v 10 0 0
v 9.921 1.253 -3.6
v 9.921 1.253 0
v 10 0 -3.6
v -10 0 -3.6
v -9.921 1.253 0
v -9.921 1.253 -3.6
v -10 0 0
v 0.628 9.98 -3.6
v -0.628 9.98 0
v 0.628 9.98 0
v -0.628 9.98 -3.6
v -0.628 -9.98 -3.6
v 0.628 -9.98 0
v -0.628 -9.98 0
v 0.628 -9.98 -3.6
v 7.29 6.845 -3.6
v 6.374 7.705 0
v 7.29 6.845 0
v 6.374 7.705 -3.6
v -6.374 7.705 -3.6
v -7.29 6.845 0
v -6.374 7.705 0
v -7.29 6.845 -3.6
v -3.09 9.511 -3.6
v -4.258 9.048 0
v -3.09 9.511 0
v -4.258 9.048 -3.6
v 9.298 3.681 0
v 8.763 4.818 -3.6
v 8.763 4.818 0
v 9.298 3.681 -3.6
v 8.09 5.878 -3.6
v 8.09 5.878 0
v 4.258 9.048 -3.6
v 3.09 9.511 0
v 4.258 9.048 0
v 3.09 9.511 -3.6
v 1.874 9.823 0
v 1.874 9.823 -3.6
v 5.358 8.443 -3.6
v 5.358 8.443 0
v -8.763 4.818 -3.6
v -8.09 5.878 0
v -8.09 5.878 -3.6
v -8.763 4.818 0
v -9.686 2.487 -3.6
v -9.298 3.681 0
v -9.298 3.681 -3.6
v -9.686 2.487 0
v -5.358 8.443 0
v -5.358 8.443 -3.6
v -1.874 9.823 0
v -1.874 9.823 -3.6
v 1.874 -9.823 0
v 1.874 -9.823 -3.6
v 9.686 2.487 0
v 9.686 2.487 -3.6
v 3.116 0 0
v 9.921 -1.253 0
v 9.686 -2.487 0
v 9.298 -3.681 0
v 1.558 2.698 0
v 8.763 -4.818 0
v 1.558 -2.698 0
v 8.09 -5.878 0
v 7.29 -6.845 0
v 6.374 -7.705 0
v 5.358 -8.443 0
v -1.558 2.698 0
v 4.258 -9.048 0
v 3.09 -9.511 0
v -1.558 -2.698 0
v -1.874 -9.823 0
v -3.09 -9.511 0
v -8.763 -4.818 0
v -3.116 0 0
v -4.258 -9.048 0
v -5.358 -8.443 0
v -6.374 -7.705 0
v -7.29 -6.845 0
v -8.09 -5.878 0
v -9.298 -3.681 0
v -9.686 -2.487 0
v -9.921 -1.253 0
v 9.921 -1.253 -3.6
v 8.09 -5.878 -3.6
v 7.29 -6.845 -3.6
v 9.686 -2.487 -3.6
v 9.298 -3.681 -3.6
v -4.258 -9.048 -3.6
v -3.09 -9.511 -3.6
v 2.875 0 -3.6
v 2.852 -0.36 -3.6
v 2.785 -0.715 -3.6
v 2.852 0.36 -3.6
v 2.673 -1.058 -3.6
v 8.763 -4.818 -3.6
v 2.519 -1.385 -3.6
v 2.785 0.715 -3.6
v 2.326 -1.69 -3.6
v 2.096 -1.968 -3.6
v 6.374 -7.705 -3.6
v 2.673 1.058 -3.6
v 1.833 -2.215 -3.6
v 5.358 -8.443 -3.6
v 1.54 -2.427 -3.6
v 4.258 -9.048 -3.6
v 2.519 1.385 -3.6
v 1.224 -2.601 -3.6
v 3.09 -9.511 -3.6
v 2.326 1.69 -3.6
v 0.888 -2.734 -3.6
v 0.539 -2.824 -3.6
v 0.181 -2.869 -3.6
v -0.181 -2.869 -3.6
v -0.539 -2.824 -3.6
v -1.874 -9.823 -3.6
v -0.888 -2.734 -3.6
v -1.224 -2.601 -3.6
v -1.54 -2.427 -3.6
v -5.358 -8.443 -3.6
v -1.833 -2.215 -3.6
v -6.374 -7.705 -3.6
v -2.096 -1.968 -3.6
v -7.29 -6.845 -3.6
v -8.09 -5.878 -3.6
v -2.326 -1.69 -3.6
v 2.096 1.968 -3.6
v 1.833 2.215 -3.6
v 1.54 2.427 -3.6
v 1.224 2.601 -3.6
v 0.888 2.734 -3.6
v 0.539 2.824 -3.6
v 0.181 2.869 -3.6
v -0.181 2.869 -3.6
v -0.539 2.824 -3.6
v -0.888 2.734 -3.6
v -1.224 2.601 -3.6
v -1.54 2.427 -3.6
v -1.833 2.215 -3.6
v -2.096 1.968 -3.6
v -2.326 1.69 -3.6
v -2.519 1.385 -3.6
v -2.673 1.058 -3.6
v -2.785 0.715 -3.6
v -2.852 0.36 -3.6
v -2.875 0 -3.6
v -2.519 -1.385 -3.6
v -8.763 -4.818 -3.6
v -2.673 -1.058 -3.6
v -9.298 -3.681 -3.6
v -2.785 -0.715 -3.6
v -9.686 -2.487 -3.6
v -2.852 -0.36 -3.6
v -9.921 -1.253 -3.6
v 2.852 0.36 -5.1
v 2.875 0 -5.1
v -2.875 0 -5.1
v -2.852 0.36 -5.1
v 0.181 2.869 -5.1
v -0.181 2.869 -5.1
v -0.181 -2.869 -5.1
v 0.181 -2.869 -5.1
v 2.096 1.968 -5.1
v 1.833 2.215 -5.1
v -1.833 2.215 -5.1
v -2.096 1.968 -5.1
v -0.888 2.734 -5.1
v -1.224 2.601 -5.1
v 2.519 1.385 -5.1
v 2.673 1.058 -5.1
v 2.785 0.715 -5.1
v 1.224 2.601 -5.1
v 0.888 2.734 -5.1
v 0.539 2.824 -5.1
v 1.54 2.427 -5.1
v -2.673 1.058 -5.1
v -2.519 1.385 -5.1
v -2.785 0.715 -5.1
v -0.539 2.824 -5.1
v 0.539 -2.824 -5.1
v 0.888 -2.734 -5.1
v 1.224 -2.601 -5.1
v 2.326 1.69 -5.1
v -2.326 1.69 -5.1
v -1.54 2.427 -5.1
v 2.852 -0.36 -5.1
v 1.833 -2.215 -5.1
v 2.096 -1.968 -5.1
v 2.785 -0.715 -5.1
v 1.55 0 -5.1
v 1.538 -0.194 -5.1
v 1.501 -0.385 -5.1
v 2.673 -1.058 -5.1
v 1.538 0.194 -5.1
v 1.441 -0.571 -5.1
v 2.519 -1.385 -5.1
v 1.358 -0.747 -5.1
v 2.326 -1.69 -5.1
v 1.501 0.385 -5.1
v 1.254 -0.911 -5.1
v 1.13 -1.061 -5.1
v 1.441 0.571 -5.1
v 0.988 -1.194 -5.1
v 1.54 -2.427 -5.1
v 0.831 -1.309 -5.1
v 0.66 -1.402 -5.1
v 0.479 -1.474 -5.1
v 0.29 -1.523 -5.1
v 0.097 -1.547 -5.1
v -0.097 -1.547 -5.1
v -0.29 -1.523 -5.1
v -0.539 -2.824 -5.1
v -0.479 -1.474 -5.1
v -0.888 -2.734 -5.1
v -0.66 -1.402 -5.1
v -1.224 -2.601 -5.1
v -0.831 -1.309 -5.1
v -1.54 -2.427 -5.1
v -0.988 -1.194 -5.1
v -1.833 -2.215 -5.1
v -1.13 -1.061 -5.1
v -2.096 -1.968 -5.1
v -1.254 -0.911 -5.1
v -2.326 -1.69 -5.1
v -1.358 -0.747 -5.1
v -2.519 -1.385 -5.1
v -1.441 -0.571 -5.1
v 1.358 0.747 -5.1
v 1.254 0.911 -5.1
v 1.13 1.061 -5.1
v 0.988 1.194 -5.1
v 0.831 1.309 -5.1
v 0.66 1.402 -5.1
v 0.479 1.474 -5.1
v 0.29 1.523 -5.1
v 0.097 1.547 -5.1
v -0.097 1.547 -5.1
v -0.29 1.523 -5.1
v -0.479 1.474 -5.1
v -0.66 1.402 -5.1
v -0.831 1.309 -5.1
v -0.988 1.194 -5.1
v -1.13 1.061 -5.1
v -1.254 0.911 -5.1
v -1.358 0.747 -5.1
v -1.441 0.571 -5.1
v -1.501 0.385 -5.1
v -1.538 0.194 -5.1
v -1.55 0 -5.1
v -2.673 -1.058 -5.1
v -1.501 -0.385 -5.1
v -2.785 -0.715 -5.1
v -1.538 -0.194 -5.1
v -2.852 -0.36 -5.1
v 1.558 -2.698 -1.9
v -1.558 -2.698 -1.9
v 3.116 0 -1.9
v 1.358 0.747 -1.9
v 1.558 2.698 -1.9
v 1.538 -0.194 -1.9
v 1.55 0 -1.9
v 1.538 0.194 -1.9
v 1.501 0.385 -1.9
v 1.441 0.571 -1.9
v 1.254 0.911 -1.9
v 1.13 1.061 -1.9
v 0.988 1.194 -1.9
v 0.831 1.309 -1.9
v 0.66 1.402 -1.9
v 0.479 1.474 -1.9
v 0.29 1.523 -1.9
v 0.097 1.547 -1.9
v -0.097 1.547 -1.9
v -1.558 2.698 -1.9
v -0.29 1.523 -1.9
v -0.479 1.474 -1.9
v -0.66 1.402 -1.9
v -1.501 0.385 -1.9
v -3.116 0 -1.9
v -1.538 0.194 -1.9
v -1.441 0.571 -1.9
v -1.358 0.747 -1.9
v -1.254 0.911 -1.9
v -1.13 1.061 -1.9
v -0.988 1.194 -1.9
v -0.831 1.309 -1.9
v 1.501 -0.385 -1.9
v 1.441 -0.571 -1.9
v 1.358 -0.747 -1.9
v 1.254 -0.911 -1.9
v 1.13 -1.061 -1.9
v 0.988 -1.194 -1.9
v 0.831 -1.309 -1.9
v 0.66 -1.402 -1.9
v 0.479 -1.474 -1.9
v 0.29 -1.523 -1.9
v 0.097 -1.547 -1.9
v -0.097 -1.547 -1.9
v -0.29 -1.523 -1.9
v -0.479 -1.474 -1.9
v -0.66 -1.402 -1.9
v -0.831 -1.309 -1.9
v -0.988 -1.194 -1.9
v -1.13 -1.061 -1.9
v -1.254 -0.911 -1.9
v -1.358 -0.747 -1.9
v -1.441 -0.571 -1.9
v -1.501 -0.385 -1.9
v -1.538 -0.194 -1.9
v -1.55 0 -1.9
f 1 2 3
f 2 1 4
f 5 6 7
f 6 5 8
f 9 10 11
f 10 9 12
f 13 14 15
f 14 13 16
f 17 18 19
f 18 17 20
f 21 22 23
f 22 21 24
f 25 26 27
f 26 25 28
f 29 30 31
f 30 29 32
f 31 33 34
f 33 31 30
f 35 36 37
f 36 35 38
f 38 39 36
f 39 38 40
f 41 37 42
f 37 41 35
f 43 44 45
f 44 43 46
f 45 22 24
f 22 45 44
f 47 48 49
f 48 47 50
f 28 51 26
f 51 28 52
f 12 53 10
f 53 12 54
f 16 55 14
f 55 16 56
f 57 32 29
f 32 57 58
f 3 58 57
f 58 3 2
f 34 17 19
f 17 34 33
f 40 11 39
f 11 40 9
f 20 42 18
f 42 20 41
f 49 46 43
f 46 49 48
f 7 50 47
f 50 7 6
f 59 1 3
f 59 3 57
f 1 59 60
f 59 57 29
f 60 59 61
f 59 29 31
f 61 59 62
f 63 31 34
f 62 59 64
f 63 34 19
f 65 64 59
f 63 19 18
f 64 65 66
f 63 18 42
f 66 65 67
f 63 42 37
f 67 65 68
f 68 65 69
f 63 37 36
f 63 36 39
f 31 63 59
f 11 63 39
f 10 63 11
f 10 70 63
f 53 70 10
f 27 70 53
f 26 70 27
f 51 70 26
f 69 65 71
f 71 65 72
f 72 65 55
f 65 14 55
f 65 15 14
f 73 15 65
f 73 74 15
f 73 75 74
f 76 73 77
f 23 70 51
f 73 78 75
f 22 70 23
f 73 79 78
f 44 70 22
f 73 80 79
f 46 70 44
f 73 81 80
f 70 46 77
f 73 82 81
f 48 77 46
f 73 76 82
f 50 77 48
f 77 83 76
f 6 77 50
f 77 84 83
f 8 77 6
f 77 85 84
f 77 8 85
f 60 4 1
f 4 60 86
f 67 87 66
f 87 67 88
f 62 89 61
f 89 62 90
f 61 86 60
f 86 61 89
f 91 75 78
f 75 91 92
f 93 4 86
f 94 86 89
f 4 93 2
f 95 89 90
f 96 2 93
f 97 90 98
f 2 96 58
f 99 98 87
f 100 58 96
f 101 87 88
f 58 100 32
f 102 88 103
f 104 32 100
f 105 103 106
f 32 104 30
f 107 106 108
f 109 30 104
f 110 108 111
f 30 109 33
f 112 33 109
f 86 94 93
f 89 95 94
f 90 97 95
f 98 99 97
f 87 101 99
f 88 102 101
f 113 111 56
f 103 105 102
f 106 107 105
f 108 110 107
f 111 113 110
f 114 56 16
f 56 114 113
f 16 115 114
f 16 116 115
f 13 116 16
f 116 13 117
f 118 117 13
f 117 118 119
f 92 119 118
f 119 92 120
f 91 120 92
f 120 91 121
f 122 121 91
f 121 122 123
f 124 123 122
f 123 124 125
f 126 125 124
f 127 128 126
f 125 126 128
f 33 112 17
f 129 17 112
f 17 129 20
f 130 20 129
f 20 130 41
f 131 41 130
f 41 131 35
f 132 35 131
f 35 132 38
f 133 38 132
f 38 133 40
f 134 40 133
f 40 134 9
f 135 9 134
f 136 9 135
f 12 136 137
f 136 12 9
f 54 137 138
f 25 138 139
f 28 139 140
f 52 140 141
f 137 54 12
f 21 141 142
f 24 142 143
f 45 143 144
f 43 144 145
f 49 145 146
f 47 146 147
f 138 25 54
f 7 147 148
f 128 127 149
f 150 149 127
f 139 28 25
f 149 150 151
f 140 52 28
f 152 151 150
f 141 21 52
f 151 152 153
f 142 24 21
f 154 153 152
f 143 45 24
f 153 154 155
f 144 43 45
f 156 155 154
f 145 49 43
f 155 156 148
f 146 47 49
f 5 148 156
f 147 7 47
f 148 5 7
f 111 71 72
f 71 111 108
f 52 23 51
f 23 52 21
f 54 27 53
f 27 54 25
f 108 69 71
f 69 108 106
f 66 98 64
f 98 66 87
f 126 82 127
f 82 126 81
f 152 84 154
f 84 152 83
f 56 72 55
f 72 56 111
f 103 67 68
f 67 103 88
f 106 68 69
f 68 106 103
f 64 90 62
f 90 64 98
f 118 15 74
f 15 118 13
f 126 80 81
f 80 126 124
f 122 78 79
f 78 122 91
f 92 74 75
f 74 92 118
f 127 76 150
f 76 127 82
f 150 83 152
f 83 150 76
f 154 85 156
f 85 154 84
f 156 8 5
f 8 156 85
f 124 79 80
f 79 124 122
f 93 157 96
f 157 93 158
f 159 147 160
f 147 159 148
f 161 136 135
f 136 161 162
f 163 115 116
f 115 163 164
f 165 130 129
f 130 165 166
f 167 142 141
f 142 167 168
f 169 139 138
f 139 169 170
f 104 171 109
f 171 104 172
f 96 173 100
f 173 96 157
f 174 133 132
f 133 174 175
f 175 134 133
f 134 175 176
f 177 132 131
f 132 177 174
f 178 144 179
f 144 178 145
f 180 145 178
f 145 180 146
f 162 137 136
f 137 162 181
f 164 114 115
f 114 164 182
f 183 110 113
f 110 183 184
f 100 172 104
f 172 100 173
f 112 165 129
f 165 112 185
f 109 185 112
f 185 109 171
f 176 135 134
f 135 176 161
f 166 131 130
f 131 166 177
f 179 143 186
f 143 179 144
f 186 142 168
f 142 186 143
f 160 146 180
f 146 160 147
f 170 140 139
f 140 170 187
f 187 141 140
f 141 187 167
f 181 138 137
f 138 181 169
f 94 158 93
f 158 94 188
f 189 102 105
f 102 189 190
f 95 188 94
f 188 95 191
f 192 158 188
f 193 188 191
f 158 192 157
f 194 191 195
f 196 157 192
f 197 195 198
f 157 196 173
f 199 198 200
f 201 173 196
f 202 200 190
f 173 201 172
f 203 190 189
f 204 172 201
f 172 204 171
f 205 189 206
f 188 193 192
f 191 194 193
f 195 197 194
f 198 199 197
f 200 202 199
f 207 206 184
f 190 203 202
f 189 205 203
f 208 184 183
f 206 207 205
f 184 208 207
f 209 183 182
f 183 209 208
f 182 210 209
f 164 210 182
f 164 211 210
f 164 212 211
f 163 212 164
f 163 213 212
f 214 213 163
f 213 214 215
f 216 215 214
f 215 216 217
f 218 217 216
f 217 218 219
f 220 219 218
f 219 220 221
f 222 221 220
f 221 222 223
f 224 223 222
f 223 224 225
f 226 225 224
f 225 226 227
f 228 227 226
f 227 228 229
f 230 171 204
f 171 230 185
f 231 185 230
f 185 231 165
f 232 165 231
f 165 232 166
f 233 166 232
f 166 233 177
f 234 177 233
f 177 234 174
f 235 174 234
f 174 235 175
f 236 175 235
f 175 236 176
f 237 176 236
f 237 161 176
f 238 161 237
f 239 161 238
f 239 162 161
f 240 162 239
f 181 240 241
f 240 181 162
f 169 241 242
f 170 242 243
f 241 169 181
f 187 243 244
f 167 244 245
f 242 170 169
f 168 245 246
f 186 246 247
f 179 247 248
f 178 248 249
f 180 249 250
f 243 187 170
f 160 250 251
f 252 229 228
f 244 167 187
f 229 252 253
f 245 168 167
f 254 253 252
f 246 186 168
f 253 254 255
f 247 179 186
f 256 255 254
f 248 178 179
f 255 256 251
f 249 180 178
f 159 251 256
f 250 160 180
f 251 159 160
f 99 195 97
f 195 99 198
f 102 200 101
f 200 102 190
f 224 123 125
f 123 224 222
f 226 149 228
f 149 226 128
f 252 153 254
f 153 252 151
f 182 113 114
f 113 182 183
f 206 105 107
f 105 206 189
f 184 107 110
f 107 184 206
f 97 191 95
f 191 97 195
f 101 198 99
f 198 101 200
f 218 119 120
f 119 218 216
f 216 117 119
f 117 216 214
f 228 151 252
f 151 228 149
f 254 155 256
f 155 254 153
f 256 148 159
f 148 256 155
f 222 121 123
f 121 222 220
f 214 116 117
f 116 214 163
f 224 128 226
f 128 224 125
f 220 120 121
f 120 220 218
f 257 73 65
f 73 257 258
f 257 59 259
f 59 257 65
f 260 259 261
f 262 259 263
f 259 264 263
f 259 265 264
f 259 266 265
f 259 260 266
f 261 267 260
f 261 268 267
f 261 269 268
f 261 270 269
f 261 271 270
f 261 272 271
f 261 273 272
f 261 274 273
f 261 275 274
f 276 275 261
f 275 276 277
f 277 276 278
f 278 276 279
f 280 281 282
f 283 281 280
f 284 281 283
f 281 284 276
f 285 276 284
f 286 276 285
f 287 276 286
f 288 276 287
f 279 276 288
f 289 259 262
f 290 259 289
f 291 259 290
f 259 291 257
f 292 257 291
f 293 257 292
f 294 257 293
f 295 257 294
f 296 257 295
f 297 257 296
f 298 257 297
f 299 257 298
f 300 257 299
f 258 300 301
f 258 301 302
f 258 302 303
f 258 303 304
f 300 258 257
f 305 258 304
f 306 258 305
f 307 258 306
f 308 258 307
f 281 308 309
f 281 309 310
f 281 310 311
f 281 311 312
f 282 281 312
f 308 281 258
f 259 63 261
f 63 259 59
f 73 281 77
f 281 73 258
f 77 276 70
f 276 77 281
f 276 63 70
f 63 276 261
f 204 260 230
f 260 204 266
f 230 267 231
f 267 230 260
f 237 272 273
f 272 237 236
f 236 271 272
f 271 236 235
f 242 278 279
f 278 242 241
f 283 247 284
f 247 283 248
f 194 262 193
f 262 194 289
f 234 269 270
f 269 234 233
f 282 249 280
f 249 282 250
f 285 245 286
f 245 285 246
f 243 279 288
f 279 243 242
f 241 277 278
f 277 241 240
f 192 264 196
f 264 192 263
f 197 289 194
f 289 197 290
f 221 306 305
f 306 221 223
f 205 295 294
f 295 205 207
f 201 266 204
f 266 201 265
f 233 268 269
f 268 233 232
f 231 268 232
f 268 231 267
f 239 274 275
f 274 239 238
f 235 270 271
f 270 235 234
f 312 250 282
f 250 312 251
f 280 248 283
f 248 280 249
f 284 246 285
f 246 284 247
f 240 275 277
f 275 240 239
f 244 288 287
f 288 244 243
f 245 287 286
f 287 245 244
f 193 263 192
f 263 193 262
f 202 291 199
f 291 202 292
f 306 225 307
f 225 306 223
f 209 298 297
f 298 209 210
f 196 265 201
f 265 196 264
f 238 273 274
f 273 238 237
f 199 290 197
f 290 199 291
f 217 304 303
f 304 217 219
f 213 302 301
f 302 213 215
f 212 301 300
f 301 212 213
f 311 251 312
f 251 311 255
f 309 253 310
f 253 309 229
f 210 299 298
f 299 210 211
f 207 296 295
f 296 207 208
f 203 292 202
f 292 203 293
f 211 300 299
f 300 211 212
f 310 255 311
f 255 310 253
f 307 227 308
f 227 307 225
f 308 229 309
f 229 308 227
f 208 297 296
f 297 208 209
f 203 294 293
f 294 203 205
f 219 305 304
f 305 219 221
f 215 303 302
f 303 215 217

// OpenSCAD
$fn = 50;


difference() {
	union() {
		translate(v = [0, 0, -3.6000000000]) {
			cylinder(h = 3.6000000000, r = 10.0000000000);
		}
		#translate(v = [0, 0, -5.1000000000]) {
			cylinder(h = 5.1000000000, r = 2.8750000000);
		}
	}
	union() {
		translate(v = [0, 0, 0]) {
			rotate(a = [0, 0, 0]) {
				difference() {
					union() {
						translate(v = [0, 0, -1.9000000000]) {
							linear_extrude(height = 1.9000000000) {
								polygon(points = [[3.1158000000, 0.0000000000], [1.5579000000, 2.6983619531], [-1.5579000000, 2.6983619531], [-3.1158000000, 0.0000000000], [-1.5579000000, -2.6983619531], [1.5579000000, -2.6983619531]]);
							}
						}
					}
					union();
				}
			}
		}
		#translate(v = [0, 0, -100.0000000000]) {
			cylinder(h = 200, r = 1.5500000000);
		}
	}
}
